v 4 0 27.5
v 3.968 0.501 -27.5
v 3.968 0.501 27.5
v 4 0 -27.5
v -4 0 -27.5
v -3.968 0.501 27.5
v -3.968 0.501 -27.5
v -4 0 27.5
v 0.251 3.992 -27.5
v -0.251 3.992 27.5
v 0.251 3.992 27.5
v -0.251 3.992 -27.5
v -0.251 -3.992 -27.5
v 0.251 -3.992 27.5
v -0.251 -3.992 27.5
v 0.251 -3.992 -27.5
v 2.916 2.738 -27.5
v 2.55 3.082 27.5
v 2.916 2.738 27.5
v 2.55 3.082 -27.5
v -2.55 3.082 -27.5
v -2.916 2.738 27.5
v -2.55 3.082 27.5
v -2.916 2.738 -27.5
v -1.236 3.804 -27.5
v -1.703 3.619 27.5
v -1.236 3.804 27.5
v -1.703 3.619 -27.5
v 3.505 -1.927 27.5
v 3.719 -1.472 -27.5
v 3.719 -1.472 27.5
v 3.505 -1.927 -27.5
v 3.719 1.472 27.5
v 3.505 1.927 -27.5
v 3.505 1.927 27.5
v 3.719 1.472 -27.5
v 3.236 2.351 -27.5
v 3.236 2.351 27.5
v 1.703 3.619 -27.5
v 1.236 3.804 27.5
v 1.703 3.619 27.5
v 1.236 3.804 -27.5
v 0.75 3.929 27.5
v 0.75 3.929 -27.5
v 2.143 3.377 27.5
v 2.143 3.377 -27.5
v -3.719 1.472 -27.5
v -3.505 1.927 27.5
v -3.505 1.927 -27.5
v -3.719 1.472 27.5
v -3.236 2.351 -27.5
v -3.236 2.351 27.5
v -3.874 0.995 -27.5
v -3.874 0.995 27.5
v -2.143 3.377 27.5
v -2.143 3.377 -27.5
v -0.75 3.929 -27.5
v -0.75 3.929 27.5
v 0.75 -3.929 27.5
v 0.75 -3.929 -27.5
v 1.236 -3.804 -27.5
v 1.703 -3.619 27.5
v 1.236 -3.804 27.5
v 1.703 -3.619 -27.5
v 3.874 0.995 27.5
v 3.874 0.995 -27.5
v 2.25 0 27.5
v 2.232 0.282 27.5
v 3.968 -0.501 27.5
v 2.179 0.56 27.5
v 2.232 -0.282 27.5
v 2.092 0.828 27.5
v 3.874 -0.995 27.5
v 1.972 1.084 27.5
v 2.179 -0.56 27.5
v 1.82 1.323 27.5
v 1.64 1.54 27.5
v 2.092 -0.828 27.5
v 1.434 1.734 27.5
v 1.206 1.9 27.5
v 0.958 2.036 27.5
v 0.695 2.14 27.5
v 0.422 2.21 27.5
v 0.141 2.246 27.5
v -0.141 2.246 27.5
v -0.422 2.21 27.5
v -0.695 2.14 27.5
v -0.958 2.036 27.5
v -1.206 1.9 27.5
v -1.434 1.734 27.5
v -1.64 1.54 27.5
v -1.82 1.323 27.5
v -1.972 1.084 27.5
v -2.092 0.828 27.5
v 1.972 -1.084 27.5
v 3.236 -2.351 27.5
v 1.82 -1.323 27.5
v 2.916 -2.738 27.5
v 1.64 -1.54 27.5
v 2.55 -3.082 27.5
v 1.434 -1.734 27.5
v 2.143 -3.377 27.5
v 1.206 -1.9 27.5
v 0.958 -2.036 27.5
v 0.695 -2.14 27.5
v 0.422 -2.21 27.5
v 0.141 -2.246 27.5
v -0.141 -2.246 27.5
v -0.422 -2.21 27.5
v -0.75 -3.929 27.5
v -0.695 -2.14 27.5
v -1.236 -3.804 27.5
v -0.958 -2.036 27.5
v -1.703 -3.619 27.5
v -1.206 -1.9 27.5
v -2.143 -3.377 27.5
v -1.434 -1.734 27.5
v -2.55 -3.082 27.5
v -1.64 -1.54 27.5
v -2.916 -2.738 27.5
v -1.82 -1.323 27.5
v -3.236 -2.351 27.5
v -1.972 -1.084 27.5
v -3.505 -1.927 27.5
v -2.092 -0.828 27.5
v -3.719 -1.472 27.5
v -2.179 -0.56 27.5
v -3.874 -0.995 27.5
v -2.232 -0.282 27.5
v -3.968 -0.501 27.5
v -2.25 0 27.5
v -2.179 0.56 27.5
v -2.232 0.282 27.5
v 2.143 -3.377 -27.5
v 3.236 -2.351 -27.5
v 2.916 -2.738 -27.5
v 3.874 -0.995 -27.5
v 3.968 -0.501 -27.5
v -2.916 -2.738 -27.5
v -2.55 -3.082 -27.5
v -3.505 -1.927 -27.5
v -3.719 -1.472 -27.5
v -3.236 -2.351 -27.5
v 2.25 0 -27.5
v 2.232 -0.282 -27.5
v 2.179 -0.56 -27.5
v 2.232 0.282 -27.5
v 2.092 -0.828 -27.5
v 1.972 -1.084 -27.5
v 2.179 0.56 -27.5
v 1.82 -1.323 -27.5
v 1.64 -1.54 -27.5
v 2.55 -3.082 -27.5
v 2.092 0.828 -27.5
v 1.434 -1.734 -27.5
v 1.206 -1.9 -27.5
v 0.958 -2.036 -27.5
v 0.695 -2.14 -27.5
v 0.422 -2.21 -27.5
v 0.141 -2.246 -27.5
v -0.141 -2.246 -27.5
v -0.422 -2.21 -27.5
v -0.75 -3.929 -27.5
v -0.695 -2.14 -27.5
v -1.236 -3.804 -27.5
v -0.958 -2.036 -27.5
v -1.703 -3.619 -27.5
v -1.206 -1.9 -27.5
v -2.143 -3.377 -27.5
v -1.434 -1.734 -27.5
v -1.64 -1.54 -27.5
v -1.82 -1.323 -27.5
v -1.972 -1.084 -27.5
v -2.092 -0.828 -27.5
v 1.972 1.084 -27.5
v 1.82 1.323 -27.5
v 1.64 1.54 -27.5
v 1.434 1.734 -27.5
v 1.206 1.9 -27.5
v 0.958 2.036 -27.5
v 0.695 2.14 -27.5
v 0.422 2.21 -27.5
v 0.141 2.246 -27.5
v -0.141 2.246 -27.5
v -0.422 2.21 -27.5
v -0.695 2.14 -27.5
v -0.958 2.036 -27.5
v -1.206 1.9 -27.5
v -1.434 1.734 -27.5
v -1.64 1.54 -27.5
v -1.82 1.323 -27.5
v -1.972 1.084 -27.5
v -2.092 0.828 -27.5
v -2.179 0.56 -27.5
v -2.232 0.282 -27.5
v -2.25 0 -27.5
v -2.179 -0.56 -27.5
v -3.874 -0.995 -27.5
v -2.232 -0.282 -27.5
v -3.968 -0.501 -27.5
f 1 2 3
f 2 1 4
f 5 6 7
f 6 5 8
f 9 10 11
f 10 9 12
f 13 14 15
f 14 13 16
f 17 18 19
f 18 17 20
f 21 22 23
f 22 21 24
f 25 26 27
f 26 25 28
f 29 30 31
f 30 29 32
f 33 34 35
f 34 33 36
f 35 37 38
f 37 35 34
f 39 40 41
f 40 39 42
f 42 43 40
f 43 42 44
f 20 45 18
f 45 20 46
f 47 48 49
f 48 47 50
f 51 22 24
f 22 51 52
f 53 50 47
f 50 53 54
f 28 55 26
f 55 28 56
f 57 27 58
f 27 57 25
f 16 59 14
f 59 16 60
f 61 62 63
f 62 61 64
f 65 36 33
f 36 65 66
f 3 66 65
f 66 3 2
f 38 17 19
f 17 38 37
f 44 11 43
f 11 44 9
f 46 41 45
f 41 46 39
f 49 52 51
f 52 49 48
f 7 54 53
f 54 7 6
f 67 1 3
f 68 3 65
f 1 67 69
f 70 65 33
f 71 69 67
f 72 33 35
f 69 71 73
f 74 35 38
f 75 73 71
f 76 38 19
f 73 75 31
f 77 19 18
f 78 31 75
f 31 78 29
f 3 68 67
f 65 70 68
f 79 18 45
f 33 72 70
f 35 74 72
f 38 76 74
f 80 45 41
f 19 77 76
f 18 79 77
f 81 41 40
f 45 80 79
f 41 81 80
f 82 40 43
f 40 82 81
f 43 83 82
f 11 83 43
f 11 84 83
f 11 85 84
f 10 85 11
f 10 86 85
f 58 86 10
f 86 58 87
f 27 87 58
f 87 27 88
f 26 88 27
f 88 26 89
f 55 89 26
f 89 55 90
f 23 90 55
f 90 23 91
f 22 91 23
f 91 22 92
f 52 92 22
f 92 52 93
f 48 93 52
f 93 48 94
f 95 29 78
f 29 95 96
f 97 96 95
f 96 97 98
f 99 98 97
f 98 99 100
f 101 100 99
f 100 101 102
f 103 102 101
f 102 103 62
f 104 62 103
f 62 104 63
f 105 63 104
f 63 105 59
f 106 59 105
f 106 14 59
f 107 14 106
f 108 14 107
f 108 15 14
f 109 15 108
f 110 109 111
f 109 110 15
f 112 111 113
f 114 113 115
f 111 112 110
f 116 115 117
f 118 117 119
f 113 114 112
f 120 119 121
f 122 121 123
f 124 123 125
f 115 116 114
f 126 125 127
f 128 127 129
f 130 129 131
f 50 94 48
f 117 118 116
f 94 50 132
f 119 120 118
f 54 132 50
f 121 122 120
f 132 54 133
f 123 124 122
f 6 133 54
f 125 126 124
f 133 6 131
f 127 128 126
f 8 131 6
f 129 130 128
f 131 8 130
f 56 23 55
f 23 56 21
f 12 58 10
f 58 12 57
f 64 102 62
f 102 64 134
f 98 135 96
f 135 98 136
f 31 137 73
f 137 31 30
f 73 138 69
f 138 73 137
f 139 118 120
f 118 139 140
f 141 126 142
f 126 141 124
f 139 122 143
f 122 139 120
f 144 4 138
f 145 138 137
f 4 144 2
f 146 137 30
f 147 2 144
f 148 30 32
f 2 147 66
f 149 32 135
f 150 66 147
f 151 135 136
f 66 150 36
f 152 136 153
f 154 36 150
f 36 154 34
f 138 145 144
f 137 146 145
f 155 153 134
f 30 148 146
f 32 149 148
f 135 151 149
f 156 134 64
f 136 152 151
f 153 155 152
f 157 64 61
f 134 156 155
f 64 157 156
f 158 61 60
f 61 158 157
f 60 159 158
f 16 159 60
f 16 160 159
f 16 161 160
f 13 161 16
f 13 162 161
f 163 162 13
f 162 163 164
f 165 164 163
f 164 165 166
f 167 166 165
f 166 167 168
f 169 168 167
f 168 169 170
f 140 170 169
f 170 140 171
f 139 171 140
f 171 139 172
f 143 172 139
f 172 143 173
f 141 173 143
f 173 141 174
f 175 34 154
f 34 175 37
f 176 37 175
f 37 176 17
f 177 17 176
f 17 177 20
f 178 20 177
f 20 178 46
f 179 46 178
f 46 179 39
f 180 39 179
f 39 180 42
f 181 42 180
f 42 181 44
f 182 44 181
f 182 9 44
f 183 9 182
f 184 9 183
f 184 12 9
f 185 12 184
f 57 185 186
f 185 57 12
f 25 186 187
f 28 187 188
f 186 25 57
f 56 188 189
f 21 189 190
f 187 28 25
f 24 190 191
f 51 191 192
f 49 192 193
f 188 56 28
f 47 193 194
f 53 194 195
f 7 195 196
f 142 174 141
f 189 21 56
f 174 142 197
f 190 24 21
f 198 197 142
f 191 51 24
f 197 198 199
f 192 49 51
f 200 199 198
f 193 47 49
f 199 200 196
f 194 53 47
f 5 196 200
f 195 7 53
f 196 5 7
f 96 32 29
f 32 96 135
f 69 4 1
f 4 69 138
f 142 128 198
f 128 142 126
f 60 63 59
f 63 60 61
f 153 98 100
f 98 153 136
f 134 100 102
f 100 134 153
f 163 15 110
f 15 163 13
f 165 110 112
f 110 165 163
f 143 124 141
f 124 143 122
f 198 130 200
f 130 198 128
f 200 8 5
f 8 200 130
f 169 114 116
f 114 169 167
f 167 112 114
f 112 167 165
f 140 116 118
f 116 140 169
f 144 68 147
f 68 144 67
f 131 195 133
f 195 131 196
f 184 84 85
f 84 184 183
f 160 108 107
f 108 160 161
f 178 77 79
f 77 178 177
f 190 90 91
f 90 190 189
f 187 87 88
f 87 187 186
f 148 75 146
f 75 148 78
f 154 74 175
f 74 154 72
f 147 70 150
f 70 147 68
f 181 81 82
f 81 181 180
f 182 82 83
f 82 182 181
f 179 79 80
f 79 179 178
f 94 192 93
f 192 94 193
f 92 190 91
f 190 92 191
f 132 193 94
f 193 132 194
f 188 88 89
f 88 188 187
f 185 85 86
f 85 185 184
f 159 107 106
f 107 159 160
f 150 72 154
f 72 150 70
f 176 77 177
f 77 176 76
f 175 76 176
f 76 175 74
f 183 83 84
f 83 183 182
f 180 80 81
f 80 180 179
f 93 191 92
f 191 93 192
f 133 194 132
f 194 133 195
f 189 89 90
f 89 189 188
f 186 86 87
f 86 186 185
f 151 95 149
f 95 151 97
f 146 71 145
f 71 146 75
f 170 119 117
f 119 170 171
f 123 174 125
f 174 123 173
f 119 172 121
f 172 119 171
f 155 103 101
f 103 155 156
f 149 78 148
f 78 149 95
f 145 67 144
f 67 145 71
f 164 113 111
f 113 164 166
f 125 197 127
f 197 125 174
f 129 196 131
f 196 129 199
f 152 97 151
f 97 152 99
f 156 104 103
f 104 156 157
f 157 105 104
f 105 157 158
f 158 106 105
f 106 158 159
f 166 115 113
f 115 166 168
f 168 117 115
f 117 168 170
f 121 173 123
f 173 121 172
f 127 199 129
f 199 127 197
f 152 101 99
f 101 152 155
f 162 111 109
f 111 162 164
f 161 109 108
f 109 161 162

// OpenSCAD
$fn = 50;


difference() {
	union() {
		translate(v = [0, 0, -27.5000000000]) {
			cylinder(h = 55, r = 4.0000000000);
		}
	}
	union() {
		translate(v = [0, 0, -100.0000000000]) {
			cylinder(h = 200, r = 2.2500000000);
		}
	}
}
